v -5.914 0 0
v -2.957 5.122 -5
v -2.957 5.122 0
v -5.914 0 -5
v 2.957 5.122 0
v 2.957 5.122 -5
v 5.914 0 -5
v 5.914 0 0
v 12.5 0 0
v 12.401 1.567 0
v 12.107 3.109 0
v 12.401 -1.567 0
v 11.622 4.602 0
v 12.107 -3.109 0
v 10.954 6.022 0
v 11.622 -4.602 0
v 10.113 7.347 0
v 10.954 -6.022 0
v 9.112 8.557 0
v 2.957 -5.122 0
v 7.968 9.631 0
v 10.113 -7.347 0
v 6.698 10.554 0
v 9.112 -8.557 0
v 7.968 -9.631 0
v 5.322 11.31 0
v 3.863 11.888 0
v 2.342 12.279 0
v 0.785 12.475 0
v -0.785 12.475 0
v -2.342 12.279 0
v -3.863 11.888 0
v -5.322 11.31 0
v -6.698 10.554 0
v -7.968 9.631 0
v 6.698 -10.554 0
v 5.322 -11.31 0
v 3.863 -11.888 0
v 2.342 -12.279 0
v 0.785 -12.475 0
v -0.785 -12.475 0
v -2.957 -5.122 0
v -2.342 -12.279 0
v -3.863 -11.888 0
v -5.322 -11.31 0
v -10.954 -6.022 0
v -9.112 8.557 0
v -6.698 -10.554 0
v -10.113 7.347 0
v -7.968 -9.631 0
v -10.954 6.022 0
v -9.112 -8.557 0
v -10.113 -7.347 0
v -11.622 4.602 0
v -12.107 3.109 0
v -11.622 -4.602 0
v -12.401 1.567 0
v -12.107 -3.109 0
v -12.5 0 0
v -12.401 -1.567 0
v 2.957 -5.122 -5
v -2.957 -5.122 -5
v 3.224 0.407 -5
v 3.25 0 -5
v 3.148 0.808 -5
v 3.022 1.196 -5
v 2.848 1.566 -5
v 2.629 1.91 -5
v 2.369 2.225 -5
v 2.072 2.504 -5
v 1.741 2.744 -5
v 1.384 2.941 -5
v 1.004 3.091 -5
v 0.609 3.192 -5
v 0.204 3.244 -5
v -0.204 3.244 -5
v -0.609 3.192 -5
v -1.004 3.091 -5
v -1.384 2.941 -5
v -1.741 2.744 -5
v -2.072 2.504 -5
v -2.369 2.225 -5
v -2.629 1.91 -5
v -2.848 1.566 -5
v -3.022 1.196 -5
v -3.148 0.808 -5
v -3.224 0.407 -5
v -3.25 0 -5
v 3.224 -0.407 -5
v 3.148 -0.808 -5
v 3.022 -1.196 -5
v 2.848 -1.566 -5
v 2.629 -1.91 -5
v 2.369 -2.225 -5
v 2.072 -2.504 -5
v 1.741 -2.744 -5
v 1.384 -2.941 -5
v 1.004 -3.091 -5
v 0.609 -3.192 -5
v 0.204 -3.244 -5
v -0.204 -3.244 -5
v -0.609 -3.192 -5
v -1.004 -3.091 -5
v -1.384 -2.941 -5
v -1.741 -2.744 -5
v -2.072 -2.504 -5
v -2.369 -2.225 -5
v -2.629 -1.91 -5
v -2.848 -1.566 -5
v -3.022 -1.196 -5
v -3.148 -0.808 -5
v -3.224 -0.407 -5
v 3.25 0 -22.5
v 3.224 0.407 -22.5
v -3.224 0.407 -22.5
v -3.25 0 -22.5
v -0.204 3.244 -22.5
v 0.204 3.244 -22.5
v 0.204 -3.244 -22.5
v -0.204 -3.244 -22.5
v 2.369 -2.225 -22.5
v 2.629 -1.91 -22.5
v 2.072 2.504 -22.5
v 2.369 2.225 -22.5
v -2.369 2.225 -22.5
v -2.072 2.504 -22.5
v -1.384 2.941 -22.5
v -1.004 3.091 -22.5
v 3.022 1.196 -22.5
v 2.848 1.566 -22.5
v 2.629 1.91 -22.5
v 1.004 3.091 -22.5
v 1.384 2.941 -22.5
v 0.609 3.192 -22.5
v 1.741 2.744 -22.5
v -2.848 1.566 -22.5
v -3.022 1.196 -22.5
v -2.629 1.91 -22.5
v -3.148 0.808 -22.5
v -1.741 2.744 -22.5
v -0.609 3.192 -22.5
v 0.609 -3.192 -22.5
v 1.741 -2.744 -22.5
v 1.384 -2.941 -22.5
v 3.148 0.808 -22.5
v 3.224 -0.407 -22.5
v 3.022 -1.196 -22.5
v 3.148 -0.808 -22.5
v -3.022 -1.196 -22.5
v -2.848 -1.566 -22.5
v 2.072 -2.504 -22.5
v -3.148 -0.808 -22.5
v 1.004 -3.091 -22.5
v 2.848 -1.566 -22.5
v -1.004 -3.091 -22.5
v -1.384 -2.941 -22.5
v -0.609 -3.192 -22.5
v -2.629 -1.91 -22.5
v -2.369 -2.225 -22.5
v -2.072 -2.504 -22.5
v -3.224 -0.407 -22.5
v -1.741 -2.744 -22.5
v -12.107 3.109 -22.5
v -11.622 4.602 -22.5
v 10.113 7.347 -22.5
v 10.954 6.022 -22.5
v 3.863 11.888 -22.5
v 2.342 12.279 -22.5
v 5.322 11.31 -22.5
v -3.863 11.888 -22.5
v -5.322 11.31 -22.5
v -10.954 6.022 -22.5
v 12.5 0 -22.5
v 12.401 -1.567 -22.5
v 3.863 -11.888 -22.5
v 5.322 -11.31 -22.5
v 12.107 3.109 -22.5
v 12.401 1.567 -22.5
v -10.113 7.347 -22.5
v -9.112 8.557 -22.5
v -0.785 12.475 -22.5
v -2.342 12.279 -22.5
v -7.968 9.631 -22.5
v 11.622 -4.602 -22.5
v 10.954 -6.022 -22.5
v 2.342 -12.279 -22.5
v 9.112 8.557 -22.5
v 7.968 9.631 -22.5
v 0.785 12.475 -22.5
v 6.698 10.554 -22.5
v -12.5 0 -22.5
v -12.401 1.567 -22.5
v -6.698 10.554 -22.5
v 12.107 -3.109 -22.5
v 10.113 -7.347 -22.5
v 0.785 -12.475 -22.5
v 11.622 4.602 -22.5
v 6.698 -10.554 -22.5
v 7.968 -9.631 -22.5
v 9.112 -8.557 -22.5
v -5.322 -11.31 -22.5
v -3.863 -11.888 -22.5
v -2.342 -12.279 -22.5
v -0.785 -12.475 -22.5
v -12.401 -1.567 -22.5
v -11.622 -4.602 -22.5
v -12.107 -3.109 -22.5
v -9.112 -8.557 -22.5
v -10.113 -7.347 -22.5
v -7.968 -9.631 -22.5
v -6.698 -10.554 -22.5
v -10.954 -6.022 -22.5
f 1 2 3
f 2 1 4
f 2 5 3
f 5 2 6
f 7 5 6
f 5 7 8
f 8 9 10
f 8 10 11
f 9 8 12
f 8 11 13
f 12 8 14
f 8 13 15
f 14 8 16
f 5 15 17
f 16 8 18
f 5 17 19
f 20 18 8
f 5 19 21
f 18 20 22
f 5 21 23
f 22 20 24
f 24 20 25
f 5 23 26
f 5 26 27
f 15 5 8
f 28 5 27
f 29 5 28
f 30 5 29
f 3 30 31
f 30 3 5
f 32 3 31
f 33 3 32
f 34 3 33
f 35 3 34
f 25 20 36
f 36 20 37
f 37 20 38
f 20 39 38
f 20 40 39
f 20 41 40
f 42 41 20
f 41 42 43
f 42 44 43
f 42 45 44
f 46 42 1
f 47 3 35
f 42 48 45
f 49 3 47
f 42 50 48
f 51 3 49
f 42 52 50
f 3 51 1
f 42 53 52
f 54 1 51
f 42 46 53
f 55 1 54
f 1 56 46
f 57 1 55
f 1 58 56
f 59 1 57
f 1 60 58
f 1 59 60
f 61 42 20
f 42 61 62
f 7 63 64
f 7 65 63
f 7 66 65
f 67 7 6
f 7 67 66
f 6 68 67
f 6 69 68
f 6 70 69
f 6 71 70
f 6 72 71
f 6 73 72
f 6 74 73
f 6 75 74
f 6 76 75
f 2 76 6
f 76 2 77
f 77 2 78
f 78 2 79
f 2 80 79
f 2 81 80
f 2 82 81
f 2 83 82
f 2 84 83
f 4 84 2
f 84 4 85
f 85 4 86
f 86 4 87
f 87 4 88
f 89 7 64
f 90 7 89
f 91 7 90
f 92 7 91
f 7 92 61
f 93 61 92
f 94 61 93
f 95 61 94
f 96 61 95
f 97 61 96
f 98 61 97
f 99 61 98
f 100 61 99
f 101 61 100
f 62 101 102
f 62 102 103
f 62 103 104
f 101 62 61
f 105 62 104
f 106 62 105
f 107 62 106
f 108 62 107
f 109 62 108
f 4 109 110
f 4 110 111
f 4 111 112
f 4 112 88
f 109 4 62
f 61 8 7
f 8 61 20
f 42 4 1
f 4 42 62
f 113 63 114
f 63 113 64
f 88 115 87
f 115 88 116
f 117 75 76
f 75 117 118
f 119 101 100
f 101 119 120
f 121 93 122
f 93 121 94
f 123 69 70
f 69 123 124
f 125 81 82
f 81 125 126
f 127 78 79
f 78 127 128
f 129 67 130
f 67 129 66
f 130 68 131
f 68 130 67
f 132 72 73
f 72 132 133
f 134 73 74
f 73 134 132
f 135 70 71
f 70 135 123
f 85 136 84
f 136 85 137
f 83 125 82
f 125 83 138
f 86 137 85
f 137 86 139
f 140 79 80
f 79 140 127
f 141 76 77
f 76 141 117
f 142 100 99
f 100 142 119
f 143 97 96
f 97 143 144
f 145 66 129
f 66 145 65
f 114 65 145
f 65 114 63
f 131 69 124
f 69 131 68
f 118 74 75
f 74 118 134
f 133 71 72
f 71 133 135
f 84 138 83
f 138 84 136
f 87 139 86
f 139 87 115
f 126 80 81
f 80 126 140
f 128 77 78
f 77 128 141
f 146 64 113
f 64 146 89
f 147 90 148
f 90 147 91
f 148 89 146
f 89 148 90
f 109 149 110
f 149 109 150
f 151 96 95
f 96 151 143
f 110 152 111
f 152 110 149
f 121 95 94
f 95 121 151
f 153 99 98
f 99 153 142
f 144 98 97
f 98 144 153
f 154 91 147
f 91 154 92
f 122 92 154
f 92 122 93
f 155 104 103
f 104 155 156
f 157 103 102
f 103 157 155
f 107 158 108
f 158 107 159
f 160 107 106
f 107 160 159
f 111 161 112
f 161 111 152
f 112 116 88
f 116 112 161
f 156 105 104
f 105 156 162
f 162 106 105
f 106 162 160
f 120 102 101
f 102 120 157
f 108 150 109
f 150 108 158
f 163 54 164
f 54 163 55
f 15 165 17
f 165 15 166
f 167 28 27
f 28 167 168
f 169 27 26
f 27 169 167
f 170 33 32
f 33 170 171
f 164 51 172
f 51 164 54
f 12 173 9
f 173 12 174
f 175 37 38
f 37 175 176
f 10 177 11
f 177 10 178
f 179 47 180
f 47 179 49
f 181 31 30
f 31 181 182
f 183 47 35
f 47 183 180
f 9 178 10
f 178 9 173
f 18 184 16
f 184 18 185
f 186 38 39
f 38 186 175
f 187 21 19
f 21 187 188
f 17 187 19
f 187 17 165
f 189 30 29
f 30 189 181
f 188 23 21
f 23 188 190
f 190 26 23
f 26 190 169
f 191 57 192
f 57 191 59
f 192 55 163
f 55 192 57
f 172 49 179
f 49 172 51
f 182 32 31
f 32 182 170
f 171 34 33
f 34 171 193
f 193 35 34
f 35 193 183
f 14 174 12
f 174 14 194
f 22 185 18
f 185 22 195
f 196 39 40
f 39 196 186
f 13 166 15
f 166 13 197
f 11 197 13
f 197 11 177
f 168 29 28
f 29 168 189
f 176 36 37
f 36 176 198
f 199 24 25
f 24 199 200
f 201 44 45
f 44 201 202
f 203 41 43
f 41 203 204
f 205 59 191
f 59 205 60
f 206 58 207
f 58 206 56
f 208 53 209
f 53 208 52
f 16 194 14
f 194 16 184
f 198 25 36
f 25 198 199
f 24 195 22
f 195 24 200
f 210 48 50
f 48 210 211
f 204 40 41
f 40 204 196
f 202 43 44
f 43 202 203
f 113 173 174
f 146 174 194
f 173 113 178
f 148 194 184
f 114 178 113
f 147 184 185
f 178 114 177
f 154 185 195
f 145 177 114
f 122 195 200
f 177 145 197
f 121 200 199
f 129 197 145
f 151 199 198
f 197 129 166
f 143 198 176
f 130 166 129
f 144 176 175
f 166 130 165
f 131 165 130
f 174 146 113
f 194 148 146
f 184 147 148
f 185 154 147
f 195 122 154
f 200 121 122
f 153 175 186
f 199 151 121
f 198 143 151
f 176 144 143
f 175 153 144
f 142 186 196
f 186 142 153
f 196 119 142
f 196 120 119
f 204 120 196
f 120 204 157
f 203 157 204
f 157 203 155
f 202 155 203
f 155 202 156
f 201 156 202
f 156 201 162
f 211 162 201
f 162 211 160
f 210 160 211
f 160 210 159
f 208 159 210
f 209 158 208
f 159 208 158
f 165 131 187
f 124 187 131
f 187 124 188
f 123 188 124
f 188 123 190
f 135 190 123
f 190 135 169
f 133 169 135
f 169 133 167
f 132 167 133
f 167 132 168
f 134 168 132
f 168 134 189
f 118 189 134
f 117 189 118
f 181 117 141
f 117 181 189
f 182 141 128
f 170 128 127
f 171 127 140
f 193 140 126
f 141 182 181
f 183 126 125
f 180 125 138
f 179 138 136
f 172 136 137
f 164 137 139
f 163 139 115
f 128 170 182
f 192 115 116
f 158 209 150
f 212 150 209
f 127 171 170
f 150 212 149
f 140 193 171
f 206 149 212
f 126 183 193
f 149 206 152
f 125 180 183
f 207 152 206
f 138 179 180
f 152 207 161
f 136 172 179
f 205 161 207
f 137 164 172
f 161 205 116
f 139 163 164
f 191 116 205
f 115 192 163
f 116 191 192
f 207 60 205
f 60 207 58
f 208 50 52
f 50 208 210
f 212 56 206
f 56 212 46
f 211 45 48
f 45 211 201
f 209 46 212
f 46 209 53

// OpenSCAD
$fn = 50;

difference() {
	union() {
		translate(v = [0, 0, -22.5]) {
			cylinder(h = 22.5, r = 12.5);
		}
	}
	union() {
		translate(v = [0, 0, 0]) {
			rotate(a = [0, 0, 0]) {
				difference() {
					union() {
						translate(v = [0, 0, -5]) {
							linear_extrude(height = 5) {
								polygon(points = [[5.914249999999999, 0.0], [2.957125, 5.1218907443321156], [-2.9571249999999982, 5.1218907443321156], [-5.914249999999999, 7.242867331857232e-16], [-2.9571250000000022, -5.121890744332115], [2.9571249999999956, -5.121890744332118]]);
							}
						}
					}
					union();
				}
			}
		}
		#translate(v = [0, 0, -100.0]) {
			cylinder(h = 200, r = 3.25);
		}
	}
}
